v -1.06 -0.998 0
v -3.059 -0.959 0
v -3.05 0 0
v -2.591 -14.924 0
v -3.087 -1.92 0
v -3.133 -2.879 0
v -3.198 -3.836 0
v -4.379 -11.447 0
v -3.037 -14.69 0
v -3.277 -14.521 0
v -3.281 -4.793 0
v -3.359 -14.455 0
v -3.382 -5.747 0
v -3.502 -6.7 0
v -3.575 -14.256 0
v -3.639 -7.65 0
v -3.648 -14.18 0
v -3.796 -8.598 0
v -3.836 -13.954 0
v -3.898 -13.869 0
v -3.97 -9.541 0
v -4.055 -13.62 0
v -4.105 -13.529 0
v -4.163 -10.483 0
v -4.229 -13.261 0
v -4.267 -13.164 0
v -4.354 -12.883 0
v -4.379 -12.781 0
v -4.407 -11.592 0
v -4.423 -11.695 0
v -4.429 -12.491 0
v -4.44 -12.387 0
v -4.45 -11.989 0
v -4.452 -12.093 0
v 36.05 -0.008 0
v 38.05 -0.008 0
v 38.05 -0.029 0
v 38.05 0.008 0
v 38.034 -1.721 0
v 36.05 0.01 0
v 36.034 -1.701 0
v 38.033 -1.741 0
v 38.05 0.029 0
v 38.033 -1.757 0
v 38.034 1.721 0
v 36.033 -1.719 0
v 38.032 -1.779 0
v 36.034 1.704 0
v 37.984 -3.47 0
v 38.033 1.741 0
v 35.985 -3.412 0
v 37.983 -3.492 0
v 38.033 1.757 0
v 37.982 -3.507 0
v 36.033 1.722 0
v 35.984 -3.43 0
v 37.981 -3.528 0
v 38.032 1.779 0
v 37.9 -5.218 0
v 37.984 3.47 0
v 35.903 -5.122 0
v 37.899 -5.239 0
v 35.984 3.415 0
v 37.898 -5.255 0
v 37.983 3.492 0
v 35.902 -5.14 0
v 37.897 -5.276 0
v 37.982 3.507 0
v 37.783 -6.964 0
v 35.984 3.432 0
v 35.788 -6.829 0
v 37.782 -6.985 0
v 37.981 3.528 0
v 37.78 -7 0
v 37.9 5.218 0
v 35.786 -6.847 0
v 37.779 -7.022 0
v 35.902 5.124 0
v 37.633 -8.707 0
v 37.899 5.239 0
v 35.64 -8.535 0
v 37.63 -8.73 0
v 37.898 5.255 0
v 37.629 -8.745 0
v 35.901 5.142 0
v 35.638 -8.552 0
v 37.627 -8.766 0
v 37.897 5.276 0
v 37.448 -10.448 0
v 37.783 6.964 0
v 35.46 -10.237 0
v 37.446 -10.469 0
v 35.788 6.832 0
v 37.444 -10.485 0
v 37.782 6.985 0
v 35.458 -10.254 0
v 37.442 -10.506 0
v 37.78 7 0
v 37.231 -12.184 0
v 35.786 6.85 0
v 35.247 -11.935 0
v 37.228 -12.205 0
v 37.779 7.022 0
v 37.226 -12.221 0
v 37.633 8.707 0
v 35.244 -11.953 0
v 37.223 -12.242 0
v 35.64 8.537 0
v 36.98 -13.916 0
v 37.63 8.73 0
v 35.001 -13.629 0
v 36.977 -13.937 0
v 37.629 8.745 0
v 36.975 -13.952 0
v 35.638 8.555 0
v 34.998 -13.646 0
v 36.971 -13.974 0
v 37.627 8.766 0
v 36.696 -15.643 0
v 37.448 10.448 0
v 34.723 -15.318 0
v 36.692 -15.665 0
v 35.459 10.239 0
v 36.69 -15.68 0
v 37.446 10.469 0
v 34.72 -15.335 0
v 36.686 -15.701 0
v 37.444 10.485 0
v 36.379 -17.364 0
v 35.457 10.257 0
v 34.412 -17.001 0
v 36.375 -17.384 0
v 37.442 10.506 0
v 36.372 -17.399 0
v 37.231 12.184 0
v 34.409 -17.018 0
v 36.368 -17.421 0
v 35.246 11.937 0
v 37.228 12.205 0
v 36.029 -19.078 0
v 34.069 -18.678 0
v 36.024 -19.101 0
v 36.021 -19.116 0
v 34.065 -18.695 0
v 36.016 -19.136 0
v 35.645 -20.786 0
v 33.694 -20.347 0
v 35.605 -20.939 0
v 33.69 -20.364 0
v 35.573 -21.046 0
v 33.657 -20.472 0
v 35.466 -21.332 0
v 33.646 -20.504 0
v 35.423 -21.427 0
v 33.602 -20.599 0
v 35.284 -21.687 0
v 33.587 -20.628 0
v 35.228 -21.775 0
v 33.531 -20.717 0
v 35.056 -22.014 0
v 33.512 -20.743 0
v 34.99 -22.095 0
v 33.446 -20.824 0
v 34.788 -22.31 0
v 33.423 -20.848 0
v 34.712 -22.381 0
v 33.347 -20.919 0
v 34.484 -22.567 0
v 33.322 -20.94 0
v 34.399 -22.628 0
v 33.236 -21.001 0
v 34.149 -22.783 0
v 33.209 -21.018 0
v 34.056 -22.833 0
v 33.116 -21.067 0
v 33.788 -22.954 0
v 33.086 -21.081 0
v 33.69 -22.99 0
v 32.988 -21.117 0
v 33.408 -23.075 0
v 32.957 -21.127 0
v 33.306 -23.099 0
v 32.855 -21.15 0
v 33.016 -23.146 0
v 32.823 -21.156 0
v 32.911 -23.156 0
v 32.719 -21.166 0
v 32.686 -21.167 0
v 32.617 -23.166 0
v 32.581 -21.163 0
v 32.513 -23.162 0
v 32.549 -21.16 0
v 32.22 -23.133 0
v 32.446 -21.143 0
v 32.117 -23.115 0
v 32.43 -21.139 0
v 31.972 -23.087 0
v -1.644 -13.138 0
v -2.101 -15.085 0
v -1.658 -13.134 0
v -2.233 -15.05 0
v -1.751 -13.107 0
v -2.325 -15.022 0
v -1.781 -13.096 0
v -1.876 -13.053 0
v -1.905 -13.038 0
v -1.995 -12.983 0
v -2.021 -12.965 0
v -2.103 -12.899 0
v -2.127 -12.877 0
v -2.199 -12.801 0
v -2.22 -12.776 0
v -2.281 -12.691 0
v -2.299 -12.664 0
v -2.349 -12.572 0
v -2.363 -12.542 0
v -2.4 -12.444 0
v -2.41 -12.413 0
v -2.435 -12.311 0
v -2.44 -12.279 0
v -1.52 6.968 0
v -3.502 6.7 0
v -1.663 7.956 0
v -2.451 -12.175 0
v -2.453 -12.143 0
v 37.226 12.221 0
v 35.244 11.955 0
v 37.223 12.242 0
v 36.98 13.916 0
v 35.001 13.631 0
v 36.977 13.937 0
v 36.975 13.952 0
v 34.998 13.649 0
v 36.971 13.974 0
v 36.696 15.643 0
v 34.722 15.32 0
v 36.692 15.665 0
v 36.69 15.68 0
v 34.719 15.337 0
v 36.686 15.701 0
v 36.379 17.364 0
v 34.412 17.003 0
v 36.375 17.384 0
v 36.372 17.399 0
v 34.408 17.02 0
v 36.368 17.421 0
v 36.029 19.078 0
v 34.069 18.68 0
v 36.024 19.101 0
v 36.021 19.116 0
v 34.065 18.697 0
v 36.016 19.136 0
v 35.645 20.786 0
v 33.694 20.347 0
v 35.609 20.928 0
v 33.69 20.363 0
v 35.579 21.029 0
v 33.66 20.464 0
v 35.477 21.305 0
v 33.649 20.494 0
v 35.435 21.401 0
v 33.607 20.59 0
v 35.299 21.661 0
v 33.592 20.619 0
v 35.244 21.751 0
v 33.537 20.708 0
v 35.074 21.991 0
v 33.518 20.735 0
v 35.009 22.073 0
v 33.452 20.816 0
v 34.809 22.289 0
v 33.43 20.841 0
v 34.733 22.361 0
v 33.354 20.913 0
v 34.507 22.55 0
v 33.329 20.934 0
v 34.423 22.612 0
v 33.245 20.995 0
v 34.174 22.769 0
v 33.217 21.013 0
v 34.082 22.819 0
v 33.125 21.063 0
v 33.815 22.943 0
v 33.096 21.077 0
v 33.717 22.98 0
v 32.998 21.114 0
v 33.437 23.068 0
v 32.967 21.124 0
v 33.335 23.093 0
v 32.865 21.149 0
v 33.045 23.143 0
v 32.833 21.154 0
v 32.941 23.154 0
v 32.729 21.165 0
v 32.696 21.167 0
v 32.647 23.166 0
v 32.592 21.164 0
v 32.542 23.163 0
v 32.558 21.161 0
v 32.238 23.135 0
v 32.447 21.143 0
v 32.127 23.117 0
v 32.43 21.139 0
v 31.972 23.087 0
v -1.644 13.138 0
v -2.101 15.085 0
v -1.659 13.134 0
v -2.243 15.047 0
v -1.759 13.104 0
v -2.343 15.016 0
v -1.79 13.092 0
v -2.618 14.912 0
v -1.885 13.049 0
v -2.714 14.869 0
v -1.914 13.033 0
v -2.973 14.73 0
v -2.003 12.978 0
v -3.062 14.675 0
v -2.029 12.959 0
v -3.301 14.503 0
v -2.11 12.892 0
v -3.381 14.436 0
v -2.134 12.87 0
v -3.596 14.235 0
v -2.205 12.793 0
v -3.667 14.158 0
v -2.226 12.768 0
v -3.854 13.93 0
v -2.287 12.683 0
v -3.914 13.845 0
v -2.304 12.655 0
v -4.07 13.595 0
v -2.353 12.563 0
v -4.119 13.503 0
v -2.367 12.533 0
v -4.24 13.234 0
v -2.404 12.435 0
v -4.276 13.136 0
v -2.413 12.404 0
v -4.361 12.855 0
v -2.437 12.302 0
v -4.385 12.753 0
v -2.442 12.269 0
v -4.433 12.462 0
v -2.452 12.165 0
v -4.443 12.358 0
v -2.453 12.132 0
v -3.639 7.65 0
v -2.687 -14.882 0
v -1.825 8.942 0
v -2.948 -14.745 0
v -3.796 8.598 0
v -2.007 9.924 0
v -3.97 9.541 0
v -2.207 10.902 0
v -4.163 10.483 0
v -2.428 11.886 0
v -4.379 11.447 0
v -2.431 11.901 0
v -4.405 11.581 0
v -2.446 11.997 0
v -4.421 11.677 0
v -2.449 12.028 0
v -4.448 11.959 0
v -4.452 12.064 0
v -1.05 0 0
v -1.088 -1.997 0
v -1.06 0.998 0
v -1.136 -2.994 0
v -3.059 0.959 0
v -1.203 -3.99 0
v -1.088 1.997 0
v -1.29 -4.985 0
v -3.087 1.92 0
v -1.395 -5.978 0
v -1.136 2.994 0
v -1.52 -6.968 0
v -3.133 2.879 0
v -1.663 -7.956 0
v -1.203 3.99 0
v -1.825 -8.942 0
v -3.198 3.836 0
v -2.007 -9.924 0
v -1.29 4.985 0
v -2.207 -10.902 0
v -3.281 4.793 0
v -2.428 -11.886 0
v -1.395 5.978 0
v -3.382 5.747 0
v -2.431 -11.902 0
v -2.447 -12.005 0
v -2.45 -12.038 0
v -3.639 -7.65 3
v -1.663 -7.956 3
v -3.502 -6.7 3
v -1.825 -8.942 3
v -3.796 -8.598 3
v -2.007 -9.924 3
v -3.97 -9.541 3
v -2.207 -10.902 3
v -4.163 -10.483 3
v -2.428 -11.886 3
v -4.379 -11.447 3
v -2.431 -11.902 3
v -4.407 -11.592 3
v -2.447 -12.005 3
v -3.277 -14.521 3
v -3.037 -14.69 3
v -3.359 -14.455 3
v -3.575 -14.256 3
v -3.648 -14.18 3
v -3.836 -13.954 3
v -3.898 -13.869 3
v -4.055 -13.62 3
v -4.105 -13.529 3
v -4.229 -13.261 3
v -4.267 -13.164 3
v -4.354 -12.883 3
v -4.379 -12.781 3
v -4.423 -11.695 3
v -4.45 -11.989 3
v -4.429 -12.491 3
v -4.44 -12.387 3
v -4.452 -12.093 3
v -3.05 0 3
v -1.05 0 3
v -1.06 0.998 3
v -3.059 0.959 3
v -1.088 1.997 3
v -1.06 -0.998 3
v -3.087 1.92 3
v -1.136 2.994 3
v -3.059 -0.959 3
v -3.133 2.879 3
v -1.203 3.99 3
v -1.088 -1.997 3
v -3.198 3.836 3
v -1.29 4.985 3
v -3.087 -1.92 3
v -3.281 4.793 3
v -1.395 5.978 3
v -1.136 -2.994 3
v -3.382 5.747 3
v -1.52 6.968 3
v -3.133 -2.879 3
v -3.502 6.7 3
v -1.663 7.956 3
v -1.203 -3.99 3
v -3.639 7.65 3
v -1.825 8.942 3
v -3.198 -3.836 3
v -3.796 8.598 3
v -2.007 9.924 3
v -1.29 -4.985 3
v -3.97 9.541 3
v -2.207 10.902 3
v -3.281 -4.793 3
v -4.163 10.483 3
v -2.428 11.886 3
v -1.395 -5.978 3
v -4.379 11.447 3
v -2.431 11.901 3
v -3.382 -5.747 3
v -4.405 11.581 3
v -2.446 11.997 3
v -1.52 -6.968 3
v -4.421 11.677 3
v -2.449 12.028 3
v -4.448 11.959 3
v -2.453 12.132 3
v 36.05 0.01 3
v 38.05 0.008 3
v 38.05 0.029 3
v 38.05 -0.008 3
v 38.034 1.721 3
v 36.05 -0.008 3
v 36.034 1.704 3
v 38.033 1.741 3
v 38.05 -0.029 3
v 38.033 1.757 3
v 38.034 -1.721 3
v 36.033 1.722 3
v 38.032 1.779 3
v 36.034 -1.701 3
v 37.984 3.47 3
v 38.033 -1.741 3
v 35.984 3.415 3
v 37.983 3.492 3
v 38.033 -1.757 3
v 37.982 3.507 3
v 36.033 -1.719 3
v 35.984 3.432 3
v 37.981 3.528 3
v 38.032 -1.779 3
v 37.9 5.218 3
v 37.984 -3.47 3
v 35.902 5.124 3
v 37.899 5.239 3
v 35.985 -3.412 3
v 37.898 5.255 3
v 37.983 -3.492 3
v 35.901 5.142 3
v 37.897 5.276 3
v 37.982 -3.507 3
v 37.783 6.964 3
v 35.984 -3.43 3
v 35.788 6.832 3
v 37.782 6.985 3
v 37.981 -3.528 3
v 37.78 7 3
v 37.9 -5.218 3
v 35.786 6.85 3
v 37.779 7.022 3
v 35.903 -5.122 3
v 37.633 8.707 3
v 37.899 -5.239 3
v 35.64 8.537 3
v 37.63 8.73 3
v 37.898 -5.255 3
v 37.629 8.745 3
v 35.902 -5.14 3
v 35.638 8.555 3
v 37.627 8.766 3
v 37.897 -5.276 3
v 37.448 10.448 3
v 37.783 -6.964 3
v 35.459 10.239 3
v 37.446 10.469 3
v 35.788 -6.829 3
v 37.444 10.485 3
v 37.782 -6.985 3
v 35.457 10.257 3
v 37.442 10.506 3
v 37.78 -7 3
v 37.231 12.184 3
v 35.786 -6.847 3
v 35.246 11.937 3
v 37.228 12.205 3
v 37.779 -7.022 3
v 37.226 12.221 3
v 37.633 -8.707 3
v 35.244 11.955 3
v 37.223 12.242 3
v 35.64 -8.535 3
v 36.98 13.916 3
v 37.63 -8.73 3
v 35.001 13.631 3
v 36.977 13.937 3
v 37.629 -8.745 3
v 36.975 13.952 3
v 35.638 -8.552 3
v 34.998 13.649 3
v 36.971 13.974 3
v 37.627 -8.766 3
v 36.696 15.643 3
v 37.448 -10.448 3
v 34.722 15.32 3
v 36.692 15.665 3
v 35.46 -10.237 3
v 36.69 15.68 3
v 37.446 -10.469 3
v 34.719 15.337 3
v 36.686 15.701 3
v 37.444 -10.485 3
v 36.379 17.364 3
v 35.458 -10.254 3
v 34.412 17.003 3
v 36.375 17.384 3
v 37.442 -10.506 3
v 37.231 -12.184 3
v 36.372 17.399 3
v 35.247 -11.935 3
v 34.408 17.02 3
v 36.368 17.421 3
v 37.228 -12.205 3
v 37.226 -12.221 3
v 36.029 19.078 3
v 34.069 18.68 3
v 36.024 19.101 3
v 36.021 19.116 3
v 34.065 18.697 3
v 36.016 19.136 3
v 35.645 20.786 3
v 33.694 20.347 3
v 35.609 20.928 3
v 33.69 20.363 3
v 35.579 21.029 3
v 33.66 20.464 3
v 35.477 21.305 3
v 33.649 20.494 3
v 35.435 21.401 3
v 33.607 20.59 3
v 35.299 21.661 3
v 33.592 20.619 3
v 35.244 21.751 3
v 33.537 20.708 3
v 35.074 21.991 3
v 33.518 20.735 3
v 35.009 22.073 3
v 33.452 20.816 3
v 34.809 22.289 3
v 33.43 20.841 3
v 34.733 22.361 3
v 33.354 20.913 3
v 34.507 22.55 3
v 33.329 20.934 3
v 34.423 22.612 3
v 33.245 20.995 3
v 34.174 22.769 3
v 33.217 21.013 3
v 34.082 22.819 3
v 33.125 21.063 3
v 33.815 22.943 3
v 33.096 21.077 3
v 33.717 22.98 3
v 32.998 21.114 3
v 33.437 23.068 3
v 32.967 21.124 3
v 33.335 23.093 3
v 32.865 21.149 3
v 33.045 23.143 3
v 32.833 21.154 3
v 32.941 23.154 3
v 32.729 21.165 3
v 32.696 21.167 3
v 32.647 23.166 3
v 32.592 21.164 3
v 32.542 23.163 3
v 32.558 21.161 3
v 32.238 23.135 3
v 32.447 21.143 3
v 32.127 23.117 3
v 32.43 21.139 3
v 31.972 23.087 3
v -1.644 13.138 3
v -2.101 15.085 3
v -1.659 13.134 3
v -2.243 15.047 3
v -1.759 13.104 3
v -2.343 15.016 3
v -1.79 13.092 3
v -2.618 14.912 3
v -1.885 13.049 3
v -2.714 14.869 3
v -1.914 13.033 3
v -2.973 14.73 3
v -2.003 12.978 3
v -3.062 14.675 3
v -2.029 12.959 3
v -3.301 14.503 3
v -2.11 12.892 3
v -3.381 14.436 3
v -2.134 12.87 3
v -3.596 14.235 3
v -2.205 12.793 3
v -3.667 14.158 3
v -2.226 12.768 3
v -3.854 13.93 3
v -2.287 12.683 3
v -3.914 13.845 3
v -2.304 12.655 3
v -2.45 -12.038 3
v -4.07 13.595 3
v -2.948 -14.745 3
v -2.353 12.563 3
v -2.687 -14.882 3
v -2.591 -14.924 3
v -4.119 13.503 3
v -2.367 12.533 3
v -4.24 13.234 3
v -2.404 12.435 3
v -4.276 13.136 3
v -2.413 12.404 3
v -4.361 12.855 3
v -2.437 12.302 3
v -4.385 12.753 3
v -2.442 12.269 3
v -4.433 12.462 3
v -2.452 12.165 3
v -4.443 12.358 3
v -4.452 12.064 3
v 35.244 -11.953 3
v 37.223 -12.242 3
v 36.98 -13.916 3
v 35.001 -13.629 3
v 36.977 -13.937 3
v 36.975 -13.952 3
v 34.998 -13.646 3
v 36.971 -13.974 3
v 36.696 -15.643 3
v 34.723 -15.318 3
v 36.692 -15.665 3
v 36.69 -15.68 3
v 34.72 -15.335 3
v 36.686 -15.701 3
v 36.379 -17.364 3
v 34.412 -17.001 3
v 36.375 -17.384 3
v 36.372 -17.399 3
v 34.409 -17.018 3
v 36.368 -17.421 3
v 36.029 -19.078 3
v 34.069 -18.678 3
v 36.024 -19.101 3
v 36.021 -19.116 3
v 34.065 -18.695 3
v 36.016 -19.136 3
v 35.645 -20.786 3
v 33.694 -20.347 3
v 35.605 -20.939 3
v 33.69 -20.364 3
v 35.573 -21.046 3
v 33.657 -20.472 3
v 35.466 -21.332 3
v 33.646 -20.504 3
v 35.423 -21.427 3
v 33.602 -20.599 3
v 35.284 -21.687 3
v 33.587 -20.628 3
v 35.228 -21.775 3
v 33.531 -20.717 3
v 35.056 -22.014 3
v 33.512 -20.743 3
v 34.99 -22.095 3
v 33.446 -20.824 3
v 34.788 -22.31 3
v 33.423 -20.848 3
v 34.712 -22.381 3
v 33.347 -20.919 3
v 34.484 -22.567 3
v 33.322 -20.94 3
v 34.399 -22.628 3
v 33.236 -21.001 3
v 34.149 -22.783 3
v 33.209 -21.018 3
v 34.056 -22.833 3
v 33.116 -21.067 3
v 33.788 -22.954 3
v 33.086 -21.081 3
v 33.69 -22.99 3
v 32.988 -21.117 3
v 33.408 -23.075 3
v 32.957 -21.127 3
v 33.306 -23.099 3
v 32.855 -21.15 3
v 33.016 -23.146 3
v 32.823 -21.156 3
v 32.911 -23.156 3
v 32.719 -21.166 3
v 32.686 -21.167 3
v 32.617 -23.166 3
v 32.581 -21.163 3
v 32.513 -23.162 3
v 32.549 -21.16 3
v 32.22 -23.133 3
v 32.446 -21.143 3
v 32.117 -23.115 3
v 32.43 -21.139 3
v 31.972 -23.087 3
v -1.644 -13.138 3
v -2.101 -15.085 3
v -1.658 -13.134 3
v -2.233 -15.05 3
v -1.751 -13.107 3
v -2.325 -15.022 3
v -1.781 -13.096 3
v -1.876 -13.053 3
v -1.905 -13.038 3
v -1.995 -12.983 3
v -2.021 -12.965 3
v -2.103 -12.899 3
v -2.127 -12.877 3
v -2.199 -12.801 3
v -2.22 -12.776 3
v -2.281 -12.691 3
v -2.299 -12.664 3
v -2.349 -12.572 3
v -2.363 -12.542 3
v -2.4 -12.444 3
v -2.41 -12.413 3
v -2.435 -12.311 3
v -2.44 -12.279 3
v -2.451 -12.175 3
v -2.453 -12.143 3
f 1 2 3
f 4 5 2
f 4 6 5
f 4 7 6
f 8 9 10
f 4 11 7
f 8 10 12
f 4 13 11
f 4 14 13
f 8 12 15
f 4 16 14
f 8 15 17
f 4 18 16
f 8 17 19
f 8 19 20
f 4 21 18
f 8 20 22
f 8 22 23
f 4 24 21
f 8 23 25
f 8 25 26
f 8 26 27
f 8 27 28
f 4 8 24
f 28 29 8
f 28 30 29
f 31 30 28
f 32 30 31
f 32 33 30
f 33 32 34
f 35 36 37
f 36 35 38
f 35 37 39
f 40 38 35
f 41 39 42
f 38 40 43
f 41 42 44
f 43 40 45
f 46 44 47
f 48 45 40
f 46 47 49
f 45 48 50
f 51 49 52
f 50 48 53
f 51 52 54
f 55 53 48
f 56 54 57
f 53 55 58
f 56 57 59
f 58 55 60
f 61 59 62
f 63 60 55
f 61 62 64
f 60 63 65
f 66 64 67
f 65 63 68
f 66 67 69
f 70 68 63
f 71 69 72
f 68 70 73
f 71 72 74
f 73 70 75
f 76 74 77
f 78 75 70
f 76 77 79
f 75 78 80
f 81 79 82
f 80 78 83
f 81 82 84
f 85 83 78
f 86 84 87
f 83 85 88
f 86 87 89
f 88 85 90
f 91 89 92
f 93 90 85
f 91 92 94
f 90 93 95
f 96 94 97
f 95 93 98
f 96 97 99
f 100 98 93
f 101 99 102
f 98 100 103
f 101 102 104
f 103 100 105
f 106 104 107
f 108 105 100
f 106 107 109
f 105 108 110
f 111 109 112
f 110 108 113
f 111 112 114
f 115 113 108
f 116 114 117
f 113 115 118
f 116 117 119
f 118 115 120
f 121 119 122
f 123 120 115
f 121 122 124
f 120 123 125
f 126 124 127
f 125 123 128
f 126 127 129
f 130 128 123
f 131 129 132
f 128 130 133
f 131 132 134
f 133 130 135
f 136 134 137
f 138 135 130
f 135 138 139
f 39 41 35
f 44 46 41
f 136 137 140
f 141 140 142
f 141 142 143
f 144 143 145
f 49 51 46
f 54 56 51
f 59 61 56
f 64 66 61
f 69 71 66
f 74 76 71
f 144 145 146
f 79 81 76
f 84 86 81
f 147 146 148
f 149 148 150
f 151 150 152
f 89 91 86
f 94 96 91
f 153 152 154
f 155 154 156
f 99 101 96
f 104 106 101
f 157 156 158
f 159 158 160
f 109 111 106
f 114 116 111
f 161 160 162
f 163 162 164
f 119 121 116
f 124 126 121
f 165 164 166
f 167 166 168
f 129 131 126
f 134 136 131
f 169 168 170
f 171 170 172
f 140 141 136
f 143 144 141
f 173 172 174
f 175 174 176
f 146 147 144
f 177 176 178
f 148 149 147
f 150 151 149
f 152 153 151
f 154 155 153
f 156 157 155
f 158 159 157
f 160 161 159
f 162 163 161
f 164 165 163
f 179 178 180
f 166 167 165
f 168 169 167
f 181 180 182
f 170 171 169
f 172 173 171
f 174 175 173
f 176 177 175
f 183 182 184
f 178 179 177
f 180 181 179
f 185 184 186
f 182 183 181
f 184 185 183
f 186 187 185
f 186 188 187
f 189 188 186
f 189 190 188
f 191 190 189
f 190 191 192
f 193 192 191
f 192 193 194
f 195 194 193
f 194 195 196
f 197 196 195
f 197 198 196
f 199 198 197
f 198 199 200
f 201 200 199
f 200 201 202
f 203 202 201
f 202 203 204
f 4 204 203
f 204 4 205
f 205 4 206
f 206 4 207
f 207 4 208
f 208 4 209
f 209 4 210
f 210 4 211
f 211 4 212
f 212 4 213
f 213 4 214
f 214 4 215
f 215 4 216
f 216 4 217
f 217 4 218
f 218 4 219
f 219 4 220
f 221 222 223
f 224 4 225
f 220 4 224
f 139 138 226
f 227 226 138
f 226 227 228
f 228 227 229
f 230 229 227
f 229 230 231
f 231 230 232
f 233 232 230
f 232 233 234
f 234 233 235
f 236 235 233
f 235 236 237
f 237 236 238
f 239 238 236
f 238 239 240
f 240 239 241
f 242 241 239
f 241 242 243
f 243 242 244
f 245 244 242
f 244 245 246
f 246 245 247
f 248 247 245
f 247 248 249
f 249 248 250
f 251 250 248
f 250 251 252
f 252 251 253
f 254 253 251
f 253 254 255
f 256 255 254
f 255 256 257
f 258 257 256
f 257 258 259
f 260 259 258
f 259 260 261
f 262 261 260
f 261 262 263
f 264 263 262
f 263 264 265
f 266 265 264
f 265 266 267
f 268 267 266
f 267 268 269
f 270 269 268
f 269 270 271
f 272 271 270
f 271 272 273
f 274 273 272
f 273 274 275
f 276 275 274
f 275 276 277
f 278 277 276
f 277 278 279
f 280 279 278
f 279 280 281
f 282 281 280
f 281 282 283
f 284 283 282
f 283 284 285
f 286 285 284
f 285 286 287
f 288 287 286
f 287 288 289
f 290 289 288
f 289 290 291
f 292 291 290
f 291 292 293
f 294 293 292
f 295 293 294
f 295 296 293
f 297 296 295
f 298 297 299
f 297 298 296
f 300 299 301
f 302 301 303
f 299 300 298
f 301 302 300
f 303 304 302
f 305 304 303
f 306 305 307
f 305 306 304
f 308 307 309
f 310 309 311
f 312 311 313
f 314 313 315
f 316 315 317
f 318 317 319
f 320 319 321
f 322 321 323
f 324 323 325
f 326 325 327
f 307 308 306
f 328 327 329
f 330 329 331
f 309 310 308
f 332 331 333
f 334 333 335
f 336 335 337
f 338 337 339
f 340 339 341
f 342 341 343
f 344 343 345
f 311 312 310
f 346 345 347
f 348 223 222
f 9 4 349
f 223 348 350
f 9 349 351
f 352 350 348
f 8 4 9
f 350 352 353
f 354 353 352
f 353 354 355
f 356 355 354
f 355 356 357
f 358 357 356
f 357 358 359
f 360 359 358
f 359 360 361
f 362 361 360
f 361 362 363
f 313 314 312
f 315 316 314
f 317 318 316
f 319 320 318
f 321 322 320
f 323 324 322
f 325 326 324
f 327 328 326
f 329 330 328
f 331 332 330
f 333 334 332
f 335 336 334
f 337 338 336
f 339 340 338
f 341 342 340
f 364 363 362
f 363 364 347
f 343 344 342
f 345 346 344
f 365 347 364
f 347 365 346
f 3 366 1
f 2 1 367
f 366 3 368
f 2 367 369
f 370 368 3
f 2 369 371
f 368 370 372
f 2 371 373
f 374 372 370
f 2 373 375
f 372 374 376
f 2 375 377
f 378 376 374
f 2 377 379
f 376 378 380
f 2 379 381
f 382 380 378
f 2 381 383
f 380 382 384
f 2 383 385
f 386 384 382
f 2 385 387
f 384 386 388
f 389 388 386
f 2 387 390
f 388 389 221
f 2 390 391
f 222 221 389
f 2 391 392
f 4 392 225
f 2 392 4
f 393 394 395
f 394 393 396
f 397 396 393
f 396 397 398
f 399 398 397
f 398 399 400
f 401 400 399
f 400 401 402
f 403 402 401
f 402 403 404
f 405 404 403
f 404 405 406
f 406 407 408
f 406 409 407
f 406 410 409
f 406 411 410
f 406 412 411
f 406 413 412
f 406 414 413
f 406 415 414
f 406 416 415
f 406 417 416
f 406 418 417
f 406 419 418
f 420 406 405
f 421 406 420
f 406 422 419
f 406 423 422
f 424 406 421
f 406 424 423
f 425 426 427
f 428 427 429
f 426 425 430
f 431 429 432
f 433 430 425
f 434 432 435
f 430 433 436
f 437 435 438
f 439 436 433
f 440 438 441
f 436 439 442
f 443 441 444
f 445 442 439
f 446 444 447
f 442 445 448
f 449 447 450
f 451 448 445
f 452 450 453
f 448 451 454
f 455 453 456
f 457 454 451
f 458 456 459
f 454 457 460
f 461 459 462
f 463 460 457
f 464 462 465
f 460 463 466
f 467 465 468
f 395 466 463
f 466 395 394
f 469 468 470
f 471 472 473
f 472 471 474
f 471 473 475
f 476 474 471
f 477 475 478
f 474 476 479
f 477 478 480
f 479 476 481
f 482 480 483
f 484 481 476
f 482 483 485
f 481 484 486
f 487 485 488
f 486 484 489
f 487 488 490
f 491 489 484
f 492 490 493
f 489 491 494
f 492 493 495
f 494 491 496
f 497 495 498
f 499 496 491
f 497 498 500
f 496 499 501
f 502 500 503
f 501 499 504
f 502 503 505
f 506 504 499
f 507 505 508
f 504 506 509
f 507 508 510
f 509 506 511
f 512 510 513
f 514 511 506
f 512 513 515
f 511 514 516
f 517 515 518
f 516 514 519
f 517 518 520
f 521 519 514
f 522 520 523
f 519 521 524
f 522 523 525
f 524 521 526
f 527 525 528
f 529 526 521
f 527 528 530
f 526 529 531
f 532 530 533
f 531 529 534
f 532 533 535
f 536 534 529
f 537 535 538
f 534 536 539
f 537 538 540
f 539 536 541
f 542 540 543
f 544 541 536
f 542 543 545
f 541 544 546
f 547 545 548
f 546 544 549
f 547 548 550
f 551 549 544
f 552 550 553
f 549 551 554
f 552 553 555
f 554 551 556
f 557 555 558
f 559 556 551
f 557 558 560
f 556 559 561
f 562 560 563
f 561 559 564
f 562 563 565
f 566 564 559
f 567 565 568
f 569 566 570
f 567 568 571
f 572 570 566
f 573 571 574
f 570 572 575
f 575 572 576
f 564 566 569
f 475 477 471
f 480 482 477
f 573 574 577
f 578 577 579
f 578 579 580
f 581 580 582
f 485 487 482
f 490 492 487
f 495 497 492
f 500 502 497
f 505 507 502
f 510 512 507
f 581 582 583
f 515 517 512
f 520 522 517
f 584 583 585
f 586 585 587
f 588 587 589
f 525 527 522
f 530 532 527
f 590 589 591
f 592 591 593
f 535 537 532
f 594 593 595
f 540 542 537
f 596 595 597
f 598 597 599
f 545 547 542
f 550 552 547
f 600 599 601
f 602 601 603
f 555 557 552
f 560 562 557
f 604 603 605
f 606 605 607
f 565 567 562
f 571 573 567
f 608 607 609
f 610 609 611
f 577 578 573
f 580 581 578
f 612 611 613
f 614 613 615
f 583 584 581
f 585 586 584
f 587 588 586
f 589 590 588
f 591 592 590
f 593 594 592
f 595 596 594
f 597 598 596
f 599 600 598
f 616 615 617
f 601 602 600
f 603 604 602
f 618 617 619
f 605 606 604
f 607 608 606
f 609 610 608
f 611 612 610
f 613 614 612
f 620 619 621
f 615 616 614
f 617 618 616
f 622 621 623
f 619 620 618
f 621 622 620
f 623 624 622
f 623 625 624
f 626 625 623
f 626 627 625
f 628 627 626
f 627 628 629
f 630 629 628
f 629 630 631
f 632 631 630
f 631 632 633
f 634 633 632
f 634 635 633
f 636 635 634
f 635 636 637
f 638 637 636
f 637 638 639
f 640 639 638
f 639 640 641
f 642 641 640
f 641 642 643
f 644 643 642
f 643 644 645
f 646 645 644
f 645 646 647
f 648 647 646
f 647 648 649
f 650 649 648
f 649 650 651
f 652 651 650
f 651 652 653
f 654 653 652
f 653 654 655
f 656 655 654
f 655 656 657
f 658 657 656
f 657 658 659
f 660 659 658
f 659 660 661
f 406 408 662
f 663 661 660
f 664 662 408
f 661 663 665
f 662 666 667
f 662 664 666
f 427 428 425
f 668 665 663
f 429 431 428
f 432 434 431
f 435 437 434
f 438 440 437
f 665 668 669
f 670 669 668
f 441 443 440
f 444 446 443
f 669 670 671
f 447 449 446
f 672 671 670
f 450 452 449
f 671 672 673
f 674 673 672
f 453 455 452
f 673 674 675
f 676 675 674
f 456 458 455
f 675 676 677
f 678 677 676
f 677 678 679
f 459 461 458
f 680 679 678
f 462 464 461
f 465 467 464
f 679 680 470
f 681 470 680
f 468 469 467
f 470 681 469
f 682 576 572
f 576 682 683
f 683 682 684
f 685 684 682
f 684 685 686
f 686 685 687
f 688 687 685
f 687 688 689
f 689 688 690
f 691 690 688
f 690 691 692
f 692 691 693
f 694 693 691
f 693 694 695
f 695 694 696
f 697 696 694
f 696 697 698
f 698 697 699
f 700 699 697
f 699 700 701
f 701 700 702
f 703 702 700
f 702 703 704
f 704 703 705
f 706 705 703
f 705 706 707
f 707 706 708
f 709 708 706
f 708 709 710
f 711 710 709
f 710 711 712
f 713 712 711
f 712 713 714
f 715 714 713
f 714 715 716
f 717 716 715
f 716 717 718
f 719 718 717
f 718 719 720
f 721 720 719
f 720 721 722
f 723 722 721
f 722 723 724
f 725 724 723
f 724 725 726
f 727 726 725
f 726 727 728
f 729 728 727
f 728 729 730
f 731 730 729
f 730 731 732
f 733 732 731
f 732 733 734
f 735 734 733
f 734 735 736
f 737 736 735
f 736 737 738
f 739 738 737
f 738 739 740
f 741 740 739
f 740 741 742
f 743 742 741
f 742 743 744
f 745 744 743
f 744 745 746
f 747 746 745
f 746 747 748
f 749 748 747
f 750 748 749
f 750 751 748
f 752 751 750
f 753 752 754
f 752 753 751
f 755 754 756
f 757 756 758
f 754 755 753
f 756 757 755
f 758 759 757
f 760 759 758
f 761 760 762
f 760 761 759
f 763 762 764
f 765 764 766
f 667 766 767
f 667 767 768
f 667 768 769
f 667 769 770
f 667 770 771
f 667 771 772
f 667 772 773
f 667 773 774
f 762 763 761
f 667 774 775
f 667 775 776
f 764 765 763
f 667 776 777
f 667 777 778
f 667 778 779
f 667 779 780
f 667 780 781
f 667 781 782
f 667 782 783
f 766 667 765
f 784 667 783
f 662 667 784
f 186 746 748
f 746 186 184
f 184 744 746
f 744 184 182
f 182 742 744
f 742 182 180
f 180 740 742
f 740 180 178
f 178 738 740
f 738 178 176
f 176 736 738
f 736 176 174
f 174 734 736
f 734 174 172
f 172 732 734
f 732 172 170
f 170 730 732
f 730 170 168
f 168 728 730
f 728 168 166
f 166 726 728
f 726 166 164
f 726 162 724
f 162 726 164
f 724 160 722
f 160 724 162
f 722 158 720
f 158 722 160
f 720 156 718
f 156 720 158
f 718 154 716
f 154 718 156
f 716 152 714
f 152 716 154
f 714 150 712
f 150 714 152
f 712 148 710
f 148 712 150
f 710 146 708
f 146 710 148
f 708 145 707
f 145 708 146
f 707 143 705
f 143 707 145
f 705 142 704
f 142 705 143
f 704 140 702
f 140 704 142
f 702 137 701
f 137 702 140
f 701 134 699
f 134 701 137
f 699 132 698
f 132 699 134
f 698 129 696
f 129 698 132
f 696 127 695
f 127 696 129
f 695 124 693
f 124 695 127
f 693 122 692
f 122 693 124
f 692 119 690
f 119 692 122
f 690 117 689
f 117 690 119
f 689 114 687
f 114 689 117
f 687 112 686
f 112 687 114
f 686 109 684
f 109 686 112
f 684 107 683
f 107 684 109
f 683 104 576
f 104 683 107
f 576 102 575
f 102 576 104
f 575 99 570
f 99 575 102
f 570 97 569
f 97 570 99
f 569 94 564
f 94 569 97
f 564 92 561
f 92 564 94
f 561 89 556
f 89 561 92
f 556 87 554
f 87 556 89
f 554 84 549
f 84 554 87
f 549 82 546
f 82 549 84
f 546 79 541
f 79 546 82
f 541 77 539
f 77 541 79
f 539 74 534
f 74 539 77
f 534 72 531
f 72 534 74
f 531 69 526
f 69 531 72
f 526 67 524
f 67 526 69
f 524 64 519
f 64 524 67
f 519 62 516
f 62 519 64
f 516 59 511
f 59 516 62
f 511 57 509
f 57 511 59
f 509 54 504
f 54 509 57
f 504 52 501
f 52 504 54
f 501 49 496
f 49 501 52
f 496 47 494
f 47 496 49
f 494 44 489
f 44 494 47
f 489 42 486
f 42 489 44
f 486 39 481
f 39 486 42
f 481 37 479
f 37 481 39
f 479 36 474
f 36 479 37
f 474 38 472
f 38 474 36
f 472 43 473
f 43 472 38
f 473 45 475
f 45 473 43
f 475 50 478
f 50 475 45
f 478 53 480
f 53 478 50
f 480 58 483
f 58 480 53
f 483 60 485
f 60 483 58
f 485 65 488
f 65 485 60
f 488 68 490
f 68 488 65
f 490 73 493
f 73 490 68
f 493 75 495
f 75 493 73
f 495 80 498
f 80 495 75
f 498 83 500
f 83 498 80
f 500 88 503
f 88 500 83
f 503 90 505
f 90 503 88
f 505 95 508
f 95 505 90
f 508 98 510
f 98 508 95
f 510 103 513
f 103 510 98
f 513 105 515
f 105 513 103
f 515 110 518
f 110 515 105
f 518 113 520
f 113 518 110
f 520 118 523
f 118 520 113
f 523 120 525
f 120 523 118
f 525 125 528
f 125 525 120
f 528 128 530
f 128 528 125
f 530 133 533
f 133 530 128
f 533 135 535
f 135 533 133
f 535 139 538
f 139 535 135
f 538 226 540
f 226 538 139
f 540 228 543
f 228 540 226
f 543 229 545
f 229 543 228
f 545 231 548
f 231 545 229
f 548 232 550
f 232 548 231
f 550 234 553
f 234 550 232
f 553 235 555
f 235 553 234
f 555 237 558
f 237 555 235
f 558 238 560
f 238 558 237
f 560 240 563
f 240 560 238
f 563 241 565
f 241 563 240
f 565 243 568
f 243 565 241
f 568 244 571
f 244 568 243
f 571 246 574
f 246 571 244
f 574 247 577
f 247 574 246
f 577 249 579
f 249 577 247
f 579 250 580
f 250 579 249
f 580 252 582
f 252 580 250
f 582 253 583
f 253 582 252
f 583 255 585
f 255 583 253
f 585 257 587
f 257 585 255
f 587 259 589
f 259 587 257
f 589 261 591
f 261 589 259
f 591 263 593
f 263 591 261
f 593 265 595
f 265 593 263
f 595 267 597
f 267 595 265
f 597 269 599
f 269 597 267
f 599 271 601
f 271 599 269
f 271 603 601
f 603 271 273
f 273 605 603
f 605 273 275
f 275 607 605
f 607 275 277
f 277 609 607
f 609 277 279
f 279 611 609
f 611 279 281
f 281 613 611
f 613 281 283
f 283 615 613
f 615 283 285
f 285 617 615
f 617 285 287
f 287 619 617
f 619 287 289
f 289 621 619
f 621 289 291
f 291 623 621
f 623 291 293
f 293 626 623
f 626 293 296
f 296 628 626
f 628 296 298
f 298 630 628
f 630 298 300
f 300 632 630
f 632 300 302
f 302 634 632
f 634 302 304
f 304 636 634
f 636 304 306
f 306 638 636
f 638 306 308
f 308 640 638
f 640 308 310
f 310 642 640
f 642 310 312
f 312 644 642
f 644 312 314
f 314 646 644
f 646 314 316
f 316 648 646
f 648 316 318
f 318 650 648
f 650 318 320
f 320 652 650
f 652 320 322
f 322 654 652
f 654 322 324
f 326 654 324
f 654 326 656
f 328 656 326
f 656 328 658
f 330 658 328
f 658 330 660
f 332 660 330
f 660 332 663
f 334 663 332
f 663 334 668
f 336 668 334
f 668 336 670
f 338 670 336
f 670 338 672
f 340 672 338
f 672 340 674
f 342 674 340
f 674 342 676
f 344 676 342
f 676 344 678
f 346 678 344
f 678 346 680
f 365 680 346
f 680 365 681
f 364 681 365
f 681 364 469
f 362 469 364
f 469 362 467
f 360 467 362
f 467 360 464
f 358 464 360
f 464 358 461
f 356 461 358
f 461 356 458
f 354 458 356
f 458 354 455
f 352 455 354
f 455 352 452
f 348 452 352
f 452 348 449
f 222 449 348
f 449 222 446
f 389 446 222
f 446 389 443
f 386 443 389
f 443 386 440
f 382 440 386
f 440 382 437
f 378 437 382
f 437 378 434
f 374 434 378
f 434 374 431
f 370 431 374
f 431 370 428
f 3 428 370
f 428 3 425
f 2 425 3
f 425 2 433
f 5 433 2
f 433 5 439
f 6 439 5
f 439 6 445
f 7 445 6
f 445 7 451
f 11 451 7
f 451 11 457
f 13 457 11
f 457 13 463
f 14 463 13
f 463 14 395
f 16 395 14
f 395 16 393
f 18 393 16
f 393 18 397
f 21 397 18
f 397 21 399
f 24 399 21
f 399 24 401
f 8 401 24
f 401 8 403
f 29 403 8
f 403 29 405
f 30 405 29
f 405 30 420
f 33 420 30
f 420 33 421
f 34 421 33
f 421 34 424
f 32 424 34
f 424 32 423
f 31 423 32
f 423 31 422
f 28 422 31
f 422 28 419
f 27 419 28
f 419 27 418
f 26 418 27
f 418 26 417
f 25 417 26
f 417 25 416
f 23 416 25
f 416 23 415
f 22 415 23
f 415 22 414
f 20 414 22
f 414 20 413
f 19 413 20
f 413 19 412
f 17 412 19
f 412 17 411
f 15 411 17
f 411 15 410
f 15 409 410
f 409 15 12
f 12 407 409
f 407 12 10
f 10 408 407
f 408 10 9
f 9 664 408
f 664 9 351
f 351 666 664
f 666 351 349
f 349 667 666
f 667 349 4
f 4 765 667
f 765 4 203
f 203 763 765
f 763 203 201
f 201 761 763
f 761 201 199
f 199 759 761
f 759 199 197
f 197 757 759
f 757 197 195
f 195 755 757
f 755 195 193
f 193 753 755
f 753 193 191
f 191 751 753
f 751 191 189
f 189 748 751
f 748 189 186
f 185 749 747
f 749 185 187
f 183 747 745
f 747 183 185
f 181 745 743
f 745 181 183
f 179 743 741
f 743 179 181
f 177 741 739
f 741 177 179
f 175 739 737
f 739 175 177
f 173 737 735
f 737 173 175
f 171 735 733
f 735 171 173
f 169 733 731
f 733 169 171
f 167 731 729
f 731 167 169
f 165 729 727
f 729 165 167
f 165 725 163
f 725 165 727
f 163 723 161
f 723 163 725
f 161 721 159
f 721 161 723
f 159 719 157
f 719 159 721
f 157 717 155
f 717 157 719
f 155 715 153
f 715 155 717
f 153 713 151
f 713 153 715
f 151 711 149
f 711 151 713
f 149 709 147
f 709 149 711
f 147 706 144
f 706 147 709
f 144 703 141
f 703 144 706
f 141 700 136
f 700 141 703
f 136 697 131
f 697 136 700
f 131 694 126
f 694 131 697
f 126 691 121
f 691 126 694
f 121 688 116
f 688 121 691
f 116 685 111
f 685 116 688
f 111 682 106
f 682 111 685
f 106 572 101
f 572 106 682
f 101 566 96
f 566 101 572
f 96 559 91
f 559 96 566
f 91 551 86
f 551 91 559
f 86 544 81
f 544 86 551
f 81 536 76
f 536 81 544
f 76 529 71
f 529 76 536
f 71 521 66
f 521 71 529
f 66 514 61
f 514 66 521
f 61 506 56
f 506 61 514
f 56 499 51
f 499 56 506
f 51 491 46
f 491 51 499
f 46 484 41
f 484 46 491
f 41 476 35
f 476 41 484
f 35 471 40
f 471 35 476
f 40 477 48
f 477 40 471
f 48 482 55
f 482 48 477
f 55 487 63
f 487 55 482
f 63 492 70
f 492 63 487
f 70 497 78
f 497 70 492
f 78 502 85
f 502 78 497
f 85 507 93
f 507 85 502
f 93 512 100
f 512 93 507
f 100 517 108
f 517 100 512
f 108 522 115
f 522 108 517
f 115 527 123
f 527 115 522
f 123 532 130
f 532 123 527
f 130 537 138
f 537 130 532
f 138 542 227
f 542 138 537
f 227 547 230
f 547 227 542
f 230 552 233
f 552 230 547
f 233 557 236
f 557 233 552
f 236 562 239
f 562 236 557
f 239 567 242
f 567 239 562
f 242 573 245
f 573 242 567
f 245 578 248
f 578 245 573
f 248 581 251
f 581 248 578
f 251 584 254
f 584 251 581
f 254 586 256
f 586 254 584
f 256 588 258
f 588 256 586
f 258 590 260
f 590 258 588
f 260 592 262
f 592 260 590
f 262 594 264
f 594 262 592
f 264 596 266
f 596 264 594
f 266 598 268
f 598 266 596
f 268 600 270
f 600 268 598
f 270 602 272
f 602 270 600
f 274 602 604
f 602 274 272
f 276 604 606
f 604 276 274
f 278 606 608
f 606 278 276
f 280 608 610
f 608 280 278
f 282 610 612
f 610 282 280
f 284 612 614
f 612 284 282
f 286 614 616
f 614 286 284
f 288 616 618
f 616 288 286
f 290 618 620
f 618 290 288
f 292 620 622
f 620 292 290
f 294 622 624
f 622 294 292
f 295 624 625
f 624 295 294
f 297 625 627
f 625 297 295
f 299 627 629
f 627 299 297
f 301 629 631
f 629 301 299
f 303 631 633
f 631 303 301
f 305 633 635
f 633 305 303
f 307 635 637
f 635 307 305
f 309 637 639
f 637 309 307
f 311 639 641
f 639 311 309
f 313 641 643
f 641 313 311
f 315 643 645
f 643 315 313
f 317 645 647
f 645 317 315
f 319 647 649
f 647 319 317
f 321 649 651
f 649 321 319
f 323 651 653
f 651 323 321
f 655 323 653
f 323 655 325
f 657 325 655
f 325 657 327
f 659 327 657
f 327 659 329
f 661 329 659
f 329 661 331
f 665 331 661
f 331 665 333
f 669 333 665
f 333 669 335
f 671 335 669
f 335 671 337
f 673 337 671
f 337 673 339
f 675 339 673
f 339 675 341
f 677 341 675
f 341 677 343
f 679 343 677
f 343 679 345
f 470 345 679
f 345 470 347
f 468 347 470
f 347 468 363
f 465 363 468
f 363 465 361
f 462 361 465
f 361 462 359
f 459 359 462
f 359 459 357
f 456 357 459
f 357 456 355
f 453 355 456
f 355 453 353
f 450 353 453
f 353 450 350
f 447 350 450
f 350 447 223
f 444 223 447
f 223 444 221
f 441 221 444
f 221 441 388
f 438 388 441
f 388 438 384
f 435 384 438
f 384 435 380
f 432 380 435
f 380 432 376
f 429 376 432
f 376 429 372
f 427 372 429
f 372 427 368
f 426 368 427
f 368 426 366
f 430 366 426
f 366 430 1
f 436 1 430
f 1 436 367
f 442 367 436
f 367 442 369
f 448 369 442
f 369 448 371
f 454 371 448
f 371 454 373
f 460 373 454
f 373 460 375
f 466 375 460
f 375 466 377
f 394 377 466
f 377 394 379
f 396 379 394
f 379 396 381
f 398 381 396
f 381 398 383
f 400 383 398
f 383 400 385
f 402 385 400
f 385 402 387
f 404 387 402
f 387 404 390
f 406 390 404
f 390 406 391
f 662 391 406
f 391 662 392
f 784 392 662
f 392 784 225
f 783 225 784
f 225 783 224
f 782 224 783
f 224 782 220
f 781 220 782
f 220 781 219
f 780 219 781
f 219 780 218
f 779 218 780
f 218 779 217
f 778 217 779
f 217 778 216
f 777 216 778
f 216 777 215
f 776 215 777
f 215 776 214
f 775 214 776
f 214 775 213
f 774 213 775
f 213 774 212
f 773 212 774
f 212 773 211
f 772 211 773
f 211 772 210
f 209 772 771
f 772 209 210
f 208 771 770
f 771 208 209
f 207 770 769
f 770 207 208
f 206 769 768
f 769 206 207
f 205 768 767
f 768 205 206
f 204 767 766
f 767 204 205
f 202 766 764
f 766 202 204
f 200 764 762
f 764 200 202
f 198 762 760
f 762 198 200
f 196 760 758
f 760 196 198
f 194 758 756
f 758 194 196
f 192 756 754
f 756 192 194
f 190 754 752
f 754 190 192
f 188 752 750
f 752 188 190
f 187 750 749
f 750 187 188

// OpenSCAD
// file: parameters.scad
// =============================================================================
// Gen-BZ — nightly 2026-10-11 (physics_scorer, honest magpylib watts)
// Minimum-gap, wire-saver stator for the Gen-BX rotors: only 5.4 mm of copper (12 layers), so the magnet faces are just 8.0 mm apart and peak Bz at the copper reaches ≈0.64 T. It holds ~20 % less copper than Gen-BX (≈300 m, leaving ~90 m of the spool spare and much less winding), and loses only ≈5.5 % of the watts vs Gen-BX — the best watts-per-metre of wire tonight.
// Clocking 0 deg (magnets N facing S) + D-flat keyed bore + index notch + flip-symmetric hole map.
// Windable 2-piece bobbin; turns = physics_scorer turns_fit; copper only between flanges.
// Steel back-iron: 2× Ø168 × 4.76 mm (3/16") mild-steel discs (steel_backiron_disc.dxf); magnets sit ON the steel
// (through-pockets) -> score with --back-iron. Night 2026-10-11.
// =============================================================================
topology            = "dual_rotor";

// --- Wire / winding (physics_scorer winding-fit) -------------------------------
wire_awg            = 26;
wire_od             = 0.45;     // insulated OD mm (bare 0.405)
fill_realistic      = 0.65;     // insulated-wire area / window (DENSE layered wind with a jig; scorer cap 0.65)
turns               = 328;       // = physics_scorer turns_fit (do NOT raise)
coil_former_type    = "bobbin";
coil_core_inset     = 14.87;     // radial copper build: hub = copper boundary inset by this
wind_build_axial    = 0.0;      // nothing proud of the flanges
wind_build_radial   = 0.0;

// --- Bobbin (base + lid) ---------------------------------------------------------
coil_id_r           = 53.00;    // copper boundary sector
coil_od_r           = 88.00;
span_deg            = 26.43;    // = pitch - 2*asin((wall+0.85)/coil_id_r) -> >=1.2 mm stator web
former_web          = 5.40;     // copper height between flanges (TALL copper: steel keeps Bz up)
flange_t            = 0.80;     // >= 0.8 mm FDM wall rule (tall winds push on the flanges)
wall                = 0.80;     // flange lip beyond copper
former_bare_h       = former_web + 2 * flange_t;
coil_envelope_h     = former_bare_h + 2 * wind_build_axial;
tab_w               = 7.0;
tab_len             = 7.0;
tab_h               = former_bare_h / 2;
pin_d               = 1.9;      // 1.75 mm filament locating pin
coil_mount_r        = coil_od_r + 0.2 + 4.0;
lead_y              = 1.6;
lead_slot_w         = 0.9;
lead_groove_d       = 0.6;

// --- Gap -------------------------------------------------------------------------
run_clear           = 0.50;     // rotor face -> flange
gap_spacer_h        = run_clear + wind_build_axial;
m2m                 = coil_envelope_h + 2 * run_clear;   // rotor face to rotor face (= gap_sleeve length)

// --- Stator ----------------------------------------------------------------------
coil_stations       = 12;
bay_clear           = 0.25;
stator_thick        = former_bare_h;                        // bobbins flush both faces
stator_od           = 194;
shaft_clear_stator  = 14.0;     // stator is static; gap sleeve OD 12 spins inside

// --- Rotor(s) --------------------------------------------------------------------
magnet_Br           = 1.43;     // N52
magnet_d_large      = 20.0;
magnet_h_large      = 5.0;      // one O20x5 per pocket
magnet_h_small      = 5.0;      // unused: no O5 pockets in this kit
halbach_magnetisation = "none";  // NO O5 assist magnets in this kit (scan: they lower the 4-pole score)
rotor_b_same_axis   = true;     // same-index magnets share one axis: N faces S across the gap
large_pocket_d      = 20.3;
small_pocket_d      = 5.3;
pocket_h            = 5.00;     // THROUGH the carrier: magnet back face sits on the steel disc (FLUSH seat: carrier = magnet height, magnet face level with the rotor face)
large_n             = 8;
R_large             = 71.0;
small_r_list        = [];       // no O5 pockets
carrier_od          = 168.0;
carrier_thick       = pocket_h;
hub_h               = 12.0;     // > steel_t + insert: radial set-screw clears the steel
hub_od              = 24.0;     // slim hub so the M4 brace rods fit at R~18 inside the coil ring
hub_insert_d        = 4.0;      // M3 heat-set insert, radial, bears on the D-flat
rotor_b_offset_deg  = 0.0;      // CLOCKING: magnets directly opposite
shaft_key           = "dflat";
dflat_depth         = 0.5;      // 8 mm shaft with 0.5 mm flat (7.5 across flat)
index_notch_d       = 3.0;

// --- Steel back-iron (buyable laser-cut) -------------------------------------------
steel_t             = 4.76;      // mild steel thickness (image method ignores it; sized from steel_flux.py so the return path stays well below saturation)
steel_center_hole   = 26.0;     // slips over the rotor hub (OD 24)
steel_od            = carrier_od;   // steel disc OD = rotor carrier OD

// --- Modular MAX interface ----------------------------------------------------------
shaft_bore          = 8.35;
dflat_x             = 4.0 - dflat_depth + (shaft_bore - 8.0) / 2;
bearing_d           = 21.85;
bearing_h           = 7.2;
m3_clear            = 3.5;
bolt_r_inner        = 30.0;     // M3 steel-disc clamp bolts (inside the magnet ring)
bolt_n_inner        = 4;
bolt_inner_angles   = [0, 90, 180, 270];
bolt_r_outer        = 44.0;     // second M3 steel-disc clamp ring
bolt_outer_angles   = [67.5, 112.5, 247.5, 292.5];
flange_bolt_r       = 91.5;     // frame rods: OUTSIDE the rotor OD (rotors spin inside them)
flange_bolt_n       = 4;
flange_bolt_offset  = 45.00;    // between coil stations -> never cuts a lead groove/tab
brace_r             = 18.0;
brace_d             = 4.3;      // temporary M4 jack rods (assembly only)
brace_n             = 4;
brace_angles        = [45, 135, 225, 315];          // flip-symmetric

spacer_pad_od       = 14.0;
spacer_pad_id       = m3_clear;
endbell_od          = 193.0;
endbell_thick       = 8.0;
endbell_shaft_clear = 10.0;
collar_h            = 10.0;
standoff_od         = 9.0;
frame_standoff_h    = run_clear + carrier_thick + hub_h + collar_h + 2.0;
sleeve_od           = 12.0;
plate_max_mm        = 410;

$fn = 64;
// main file
// Gen-BZ — fit coupon (bay part): O20/O5 THROUGH pockets at carrier thickness (test on a steel offcut), 608 seat,
// D-flat bore, gap shim, and one bobbin-bay slice (bobbin footprint + bay_clear) to test former fit.
include <parameters.scad>;
$fn = 48;
// D-flat keyed bore: flat faces +X (angle 0 = magnet pocket 0 = index notch)
module dflat_bore(h) {
    intersection() {
        cylinder(d=shaft_bore, h=h);
        translate([-shaft_bore, -shaft_bore, 0]) cube([shaft_bore + dflat_x, 2*shaft_bore, h]);
    }
}
module sector_2d(r_in, r_out, ang) {
    polygon([
        for (a = [-ang/2 : ang/24 : ang/2]) [r_in*cos(a), r_in*sin(a)],
        for (a = [ang/2 : -ang/24 : -ang/2]) [r_out*cos(a), r_out*sin(a)]
    ]);
}
module footprint_2d() { offset(r=wall) sector_2d(coil_id_r, coil_od_r, span_deg); }
module hub_2d()       { offset(delta=-coil_core_inset) sector_2d(coil_id_r, coil_od_r, span_deg); }

// bay slice: 3 mm tall ring section of the stator bay around one footprint (tests bobbin drop-in fit)
translate([-coil_id_r, 0, 0]) difference() {
    linear_extrude(3) offset(r=bay_clear + 2) footprint_2d();
    translate([0, 0, -0.1]) linear_extrude(3.2) offset(r=bay_clear) footprint_2d();
}
